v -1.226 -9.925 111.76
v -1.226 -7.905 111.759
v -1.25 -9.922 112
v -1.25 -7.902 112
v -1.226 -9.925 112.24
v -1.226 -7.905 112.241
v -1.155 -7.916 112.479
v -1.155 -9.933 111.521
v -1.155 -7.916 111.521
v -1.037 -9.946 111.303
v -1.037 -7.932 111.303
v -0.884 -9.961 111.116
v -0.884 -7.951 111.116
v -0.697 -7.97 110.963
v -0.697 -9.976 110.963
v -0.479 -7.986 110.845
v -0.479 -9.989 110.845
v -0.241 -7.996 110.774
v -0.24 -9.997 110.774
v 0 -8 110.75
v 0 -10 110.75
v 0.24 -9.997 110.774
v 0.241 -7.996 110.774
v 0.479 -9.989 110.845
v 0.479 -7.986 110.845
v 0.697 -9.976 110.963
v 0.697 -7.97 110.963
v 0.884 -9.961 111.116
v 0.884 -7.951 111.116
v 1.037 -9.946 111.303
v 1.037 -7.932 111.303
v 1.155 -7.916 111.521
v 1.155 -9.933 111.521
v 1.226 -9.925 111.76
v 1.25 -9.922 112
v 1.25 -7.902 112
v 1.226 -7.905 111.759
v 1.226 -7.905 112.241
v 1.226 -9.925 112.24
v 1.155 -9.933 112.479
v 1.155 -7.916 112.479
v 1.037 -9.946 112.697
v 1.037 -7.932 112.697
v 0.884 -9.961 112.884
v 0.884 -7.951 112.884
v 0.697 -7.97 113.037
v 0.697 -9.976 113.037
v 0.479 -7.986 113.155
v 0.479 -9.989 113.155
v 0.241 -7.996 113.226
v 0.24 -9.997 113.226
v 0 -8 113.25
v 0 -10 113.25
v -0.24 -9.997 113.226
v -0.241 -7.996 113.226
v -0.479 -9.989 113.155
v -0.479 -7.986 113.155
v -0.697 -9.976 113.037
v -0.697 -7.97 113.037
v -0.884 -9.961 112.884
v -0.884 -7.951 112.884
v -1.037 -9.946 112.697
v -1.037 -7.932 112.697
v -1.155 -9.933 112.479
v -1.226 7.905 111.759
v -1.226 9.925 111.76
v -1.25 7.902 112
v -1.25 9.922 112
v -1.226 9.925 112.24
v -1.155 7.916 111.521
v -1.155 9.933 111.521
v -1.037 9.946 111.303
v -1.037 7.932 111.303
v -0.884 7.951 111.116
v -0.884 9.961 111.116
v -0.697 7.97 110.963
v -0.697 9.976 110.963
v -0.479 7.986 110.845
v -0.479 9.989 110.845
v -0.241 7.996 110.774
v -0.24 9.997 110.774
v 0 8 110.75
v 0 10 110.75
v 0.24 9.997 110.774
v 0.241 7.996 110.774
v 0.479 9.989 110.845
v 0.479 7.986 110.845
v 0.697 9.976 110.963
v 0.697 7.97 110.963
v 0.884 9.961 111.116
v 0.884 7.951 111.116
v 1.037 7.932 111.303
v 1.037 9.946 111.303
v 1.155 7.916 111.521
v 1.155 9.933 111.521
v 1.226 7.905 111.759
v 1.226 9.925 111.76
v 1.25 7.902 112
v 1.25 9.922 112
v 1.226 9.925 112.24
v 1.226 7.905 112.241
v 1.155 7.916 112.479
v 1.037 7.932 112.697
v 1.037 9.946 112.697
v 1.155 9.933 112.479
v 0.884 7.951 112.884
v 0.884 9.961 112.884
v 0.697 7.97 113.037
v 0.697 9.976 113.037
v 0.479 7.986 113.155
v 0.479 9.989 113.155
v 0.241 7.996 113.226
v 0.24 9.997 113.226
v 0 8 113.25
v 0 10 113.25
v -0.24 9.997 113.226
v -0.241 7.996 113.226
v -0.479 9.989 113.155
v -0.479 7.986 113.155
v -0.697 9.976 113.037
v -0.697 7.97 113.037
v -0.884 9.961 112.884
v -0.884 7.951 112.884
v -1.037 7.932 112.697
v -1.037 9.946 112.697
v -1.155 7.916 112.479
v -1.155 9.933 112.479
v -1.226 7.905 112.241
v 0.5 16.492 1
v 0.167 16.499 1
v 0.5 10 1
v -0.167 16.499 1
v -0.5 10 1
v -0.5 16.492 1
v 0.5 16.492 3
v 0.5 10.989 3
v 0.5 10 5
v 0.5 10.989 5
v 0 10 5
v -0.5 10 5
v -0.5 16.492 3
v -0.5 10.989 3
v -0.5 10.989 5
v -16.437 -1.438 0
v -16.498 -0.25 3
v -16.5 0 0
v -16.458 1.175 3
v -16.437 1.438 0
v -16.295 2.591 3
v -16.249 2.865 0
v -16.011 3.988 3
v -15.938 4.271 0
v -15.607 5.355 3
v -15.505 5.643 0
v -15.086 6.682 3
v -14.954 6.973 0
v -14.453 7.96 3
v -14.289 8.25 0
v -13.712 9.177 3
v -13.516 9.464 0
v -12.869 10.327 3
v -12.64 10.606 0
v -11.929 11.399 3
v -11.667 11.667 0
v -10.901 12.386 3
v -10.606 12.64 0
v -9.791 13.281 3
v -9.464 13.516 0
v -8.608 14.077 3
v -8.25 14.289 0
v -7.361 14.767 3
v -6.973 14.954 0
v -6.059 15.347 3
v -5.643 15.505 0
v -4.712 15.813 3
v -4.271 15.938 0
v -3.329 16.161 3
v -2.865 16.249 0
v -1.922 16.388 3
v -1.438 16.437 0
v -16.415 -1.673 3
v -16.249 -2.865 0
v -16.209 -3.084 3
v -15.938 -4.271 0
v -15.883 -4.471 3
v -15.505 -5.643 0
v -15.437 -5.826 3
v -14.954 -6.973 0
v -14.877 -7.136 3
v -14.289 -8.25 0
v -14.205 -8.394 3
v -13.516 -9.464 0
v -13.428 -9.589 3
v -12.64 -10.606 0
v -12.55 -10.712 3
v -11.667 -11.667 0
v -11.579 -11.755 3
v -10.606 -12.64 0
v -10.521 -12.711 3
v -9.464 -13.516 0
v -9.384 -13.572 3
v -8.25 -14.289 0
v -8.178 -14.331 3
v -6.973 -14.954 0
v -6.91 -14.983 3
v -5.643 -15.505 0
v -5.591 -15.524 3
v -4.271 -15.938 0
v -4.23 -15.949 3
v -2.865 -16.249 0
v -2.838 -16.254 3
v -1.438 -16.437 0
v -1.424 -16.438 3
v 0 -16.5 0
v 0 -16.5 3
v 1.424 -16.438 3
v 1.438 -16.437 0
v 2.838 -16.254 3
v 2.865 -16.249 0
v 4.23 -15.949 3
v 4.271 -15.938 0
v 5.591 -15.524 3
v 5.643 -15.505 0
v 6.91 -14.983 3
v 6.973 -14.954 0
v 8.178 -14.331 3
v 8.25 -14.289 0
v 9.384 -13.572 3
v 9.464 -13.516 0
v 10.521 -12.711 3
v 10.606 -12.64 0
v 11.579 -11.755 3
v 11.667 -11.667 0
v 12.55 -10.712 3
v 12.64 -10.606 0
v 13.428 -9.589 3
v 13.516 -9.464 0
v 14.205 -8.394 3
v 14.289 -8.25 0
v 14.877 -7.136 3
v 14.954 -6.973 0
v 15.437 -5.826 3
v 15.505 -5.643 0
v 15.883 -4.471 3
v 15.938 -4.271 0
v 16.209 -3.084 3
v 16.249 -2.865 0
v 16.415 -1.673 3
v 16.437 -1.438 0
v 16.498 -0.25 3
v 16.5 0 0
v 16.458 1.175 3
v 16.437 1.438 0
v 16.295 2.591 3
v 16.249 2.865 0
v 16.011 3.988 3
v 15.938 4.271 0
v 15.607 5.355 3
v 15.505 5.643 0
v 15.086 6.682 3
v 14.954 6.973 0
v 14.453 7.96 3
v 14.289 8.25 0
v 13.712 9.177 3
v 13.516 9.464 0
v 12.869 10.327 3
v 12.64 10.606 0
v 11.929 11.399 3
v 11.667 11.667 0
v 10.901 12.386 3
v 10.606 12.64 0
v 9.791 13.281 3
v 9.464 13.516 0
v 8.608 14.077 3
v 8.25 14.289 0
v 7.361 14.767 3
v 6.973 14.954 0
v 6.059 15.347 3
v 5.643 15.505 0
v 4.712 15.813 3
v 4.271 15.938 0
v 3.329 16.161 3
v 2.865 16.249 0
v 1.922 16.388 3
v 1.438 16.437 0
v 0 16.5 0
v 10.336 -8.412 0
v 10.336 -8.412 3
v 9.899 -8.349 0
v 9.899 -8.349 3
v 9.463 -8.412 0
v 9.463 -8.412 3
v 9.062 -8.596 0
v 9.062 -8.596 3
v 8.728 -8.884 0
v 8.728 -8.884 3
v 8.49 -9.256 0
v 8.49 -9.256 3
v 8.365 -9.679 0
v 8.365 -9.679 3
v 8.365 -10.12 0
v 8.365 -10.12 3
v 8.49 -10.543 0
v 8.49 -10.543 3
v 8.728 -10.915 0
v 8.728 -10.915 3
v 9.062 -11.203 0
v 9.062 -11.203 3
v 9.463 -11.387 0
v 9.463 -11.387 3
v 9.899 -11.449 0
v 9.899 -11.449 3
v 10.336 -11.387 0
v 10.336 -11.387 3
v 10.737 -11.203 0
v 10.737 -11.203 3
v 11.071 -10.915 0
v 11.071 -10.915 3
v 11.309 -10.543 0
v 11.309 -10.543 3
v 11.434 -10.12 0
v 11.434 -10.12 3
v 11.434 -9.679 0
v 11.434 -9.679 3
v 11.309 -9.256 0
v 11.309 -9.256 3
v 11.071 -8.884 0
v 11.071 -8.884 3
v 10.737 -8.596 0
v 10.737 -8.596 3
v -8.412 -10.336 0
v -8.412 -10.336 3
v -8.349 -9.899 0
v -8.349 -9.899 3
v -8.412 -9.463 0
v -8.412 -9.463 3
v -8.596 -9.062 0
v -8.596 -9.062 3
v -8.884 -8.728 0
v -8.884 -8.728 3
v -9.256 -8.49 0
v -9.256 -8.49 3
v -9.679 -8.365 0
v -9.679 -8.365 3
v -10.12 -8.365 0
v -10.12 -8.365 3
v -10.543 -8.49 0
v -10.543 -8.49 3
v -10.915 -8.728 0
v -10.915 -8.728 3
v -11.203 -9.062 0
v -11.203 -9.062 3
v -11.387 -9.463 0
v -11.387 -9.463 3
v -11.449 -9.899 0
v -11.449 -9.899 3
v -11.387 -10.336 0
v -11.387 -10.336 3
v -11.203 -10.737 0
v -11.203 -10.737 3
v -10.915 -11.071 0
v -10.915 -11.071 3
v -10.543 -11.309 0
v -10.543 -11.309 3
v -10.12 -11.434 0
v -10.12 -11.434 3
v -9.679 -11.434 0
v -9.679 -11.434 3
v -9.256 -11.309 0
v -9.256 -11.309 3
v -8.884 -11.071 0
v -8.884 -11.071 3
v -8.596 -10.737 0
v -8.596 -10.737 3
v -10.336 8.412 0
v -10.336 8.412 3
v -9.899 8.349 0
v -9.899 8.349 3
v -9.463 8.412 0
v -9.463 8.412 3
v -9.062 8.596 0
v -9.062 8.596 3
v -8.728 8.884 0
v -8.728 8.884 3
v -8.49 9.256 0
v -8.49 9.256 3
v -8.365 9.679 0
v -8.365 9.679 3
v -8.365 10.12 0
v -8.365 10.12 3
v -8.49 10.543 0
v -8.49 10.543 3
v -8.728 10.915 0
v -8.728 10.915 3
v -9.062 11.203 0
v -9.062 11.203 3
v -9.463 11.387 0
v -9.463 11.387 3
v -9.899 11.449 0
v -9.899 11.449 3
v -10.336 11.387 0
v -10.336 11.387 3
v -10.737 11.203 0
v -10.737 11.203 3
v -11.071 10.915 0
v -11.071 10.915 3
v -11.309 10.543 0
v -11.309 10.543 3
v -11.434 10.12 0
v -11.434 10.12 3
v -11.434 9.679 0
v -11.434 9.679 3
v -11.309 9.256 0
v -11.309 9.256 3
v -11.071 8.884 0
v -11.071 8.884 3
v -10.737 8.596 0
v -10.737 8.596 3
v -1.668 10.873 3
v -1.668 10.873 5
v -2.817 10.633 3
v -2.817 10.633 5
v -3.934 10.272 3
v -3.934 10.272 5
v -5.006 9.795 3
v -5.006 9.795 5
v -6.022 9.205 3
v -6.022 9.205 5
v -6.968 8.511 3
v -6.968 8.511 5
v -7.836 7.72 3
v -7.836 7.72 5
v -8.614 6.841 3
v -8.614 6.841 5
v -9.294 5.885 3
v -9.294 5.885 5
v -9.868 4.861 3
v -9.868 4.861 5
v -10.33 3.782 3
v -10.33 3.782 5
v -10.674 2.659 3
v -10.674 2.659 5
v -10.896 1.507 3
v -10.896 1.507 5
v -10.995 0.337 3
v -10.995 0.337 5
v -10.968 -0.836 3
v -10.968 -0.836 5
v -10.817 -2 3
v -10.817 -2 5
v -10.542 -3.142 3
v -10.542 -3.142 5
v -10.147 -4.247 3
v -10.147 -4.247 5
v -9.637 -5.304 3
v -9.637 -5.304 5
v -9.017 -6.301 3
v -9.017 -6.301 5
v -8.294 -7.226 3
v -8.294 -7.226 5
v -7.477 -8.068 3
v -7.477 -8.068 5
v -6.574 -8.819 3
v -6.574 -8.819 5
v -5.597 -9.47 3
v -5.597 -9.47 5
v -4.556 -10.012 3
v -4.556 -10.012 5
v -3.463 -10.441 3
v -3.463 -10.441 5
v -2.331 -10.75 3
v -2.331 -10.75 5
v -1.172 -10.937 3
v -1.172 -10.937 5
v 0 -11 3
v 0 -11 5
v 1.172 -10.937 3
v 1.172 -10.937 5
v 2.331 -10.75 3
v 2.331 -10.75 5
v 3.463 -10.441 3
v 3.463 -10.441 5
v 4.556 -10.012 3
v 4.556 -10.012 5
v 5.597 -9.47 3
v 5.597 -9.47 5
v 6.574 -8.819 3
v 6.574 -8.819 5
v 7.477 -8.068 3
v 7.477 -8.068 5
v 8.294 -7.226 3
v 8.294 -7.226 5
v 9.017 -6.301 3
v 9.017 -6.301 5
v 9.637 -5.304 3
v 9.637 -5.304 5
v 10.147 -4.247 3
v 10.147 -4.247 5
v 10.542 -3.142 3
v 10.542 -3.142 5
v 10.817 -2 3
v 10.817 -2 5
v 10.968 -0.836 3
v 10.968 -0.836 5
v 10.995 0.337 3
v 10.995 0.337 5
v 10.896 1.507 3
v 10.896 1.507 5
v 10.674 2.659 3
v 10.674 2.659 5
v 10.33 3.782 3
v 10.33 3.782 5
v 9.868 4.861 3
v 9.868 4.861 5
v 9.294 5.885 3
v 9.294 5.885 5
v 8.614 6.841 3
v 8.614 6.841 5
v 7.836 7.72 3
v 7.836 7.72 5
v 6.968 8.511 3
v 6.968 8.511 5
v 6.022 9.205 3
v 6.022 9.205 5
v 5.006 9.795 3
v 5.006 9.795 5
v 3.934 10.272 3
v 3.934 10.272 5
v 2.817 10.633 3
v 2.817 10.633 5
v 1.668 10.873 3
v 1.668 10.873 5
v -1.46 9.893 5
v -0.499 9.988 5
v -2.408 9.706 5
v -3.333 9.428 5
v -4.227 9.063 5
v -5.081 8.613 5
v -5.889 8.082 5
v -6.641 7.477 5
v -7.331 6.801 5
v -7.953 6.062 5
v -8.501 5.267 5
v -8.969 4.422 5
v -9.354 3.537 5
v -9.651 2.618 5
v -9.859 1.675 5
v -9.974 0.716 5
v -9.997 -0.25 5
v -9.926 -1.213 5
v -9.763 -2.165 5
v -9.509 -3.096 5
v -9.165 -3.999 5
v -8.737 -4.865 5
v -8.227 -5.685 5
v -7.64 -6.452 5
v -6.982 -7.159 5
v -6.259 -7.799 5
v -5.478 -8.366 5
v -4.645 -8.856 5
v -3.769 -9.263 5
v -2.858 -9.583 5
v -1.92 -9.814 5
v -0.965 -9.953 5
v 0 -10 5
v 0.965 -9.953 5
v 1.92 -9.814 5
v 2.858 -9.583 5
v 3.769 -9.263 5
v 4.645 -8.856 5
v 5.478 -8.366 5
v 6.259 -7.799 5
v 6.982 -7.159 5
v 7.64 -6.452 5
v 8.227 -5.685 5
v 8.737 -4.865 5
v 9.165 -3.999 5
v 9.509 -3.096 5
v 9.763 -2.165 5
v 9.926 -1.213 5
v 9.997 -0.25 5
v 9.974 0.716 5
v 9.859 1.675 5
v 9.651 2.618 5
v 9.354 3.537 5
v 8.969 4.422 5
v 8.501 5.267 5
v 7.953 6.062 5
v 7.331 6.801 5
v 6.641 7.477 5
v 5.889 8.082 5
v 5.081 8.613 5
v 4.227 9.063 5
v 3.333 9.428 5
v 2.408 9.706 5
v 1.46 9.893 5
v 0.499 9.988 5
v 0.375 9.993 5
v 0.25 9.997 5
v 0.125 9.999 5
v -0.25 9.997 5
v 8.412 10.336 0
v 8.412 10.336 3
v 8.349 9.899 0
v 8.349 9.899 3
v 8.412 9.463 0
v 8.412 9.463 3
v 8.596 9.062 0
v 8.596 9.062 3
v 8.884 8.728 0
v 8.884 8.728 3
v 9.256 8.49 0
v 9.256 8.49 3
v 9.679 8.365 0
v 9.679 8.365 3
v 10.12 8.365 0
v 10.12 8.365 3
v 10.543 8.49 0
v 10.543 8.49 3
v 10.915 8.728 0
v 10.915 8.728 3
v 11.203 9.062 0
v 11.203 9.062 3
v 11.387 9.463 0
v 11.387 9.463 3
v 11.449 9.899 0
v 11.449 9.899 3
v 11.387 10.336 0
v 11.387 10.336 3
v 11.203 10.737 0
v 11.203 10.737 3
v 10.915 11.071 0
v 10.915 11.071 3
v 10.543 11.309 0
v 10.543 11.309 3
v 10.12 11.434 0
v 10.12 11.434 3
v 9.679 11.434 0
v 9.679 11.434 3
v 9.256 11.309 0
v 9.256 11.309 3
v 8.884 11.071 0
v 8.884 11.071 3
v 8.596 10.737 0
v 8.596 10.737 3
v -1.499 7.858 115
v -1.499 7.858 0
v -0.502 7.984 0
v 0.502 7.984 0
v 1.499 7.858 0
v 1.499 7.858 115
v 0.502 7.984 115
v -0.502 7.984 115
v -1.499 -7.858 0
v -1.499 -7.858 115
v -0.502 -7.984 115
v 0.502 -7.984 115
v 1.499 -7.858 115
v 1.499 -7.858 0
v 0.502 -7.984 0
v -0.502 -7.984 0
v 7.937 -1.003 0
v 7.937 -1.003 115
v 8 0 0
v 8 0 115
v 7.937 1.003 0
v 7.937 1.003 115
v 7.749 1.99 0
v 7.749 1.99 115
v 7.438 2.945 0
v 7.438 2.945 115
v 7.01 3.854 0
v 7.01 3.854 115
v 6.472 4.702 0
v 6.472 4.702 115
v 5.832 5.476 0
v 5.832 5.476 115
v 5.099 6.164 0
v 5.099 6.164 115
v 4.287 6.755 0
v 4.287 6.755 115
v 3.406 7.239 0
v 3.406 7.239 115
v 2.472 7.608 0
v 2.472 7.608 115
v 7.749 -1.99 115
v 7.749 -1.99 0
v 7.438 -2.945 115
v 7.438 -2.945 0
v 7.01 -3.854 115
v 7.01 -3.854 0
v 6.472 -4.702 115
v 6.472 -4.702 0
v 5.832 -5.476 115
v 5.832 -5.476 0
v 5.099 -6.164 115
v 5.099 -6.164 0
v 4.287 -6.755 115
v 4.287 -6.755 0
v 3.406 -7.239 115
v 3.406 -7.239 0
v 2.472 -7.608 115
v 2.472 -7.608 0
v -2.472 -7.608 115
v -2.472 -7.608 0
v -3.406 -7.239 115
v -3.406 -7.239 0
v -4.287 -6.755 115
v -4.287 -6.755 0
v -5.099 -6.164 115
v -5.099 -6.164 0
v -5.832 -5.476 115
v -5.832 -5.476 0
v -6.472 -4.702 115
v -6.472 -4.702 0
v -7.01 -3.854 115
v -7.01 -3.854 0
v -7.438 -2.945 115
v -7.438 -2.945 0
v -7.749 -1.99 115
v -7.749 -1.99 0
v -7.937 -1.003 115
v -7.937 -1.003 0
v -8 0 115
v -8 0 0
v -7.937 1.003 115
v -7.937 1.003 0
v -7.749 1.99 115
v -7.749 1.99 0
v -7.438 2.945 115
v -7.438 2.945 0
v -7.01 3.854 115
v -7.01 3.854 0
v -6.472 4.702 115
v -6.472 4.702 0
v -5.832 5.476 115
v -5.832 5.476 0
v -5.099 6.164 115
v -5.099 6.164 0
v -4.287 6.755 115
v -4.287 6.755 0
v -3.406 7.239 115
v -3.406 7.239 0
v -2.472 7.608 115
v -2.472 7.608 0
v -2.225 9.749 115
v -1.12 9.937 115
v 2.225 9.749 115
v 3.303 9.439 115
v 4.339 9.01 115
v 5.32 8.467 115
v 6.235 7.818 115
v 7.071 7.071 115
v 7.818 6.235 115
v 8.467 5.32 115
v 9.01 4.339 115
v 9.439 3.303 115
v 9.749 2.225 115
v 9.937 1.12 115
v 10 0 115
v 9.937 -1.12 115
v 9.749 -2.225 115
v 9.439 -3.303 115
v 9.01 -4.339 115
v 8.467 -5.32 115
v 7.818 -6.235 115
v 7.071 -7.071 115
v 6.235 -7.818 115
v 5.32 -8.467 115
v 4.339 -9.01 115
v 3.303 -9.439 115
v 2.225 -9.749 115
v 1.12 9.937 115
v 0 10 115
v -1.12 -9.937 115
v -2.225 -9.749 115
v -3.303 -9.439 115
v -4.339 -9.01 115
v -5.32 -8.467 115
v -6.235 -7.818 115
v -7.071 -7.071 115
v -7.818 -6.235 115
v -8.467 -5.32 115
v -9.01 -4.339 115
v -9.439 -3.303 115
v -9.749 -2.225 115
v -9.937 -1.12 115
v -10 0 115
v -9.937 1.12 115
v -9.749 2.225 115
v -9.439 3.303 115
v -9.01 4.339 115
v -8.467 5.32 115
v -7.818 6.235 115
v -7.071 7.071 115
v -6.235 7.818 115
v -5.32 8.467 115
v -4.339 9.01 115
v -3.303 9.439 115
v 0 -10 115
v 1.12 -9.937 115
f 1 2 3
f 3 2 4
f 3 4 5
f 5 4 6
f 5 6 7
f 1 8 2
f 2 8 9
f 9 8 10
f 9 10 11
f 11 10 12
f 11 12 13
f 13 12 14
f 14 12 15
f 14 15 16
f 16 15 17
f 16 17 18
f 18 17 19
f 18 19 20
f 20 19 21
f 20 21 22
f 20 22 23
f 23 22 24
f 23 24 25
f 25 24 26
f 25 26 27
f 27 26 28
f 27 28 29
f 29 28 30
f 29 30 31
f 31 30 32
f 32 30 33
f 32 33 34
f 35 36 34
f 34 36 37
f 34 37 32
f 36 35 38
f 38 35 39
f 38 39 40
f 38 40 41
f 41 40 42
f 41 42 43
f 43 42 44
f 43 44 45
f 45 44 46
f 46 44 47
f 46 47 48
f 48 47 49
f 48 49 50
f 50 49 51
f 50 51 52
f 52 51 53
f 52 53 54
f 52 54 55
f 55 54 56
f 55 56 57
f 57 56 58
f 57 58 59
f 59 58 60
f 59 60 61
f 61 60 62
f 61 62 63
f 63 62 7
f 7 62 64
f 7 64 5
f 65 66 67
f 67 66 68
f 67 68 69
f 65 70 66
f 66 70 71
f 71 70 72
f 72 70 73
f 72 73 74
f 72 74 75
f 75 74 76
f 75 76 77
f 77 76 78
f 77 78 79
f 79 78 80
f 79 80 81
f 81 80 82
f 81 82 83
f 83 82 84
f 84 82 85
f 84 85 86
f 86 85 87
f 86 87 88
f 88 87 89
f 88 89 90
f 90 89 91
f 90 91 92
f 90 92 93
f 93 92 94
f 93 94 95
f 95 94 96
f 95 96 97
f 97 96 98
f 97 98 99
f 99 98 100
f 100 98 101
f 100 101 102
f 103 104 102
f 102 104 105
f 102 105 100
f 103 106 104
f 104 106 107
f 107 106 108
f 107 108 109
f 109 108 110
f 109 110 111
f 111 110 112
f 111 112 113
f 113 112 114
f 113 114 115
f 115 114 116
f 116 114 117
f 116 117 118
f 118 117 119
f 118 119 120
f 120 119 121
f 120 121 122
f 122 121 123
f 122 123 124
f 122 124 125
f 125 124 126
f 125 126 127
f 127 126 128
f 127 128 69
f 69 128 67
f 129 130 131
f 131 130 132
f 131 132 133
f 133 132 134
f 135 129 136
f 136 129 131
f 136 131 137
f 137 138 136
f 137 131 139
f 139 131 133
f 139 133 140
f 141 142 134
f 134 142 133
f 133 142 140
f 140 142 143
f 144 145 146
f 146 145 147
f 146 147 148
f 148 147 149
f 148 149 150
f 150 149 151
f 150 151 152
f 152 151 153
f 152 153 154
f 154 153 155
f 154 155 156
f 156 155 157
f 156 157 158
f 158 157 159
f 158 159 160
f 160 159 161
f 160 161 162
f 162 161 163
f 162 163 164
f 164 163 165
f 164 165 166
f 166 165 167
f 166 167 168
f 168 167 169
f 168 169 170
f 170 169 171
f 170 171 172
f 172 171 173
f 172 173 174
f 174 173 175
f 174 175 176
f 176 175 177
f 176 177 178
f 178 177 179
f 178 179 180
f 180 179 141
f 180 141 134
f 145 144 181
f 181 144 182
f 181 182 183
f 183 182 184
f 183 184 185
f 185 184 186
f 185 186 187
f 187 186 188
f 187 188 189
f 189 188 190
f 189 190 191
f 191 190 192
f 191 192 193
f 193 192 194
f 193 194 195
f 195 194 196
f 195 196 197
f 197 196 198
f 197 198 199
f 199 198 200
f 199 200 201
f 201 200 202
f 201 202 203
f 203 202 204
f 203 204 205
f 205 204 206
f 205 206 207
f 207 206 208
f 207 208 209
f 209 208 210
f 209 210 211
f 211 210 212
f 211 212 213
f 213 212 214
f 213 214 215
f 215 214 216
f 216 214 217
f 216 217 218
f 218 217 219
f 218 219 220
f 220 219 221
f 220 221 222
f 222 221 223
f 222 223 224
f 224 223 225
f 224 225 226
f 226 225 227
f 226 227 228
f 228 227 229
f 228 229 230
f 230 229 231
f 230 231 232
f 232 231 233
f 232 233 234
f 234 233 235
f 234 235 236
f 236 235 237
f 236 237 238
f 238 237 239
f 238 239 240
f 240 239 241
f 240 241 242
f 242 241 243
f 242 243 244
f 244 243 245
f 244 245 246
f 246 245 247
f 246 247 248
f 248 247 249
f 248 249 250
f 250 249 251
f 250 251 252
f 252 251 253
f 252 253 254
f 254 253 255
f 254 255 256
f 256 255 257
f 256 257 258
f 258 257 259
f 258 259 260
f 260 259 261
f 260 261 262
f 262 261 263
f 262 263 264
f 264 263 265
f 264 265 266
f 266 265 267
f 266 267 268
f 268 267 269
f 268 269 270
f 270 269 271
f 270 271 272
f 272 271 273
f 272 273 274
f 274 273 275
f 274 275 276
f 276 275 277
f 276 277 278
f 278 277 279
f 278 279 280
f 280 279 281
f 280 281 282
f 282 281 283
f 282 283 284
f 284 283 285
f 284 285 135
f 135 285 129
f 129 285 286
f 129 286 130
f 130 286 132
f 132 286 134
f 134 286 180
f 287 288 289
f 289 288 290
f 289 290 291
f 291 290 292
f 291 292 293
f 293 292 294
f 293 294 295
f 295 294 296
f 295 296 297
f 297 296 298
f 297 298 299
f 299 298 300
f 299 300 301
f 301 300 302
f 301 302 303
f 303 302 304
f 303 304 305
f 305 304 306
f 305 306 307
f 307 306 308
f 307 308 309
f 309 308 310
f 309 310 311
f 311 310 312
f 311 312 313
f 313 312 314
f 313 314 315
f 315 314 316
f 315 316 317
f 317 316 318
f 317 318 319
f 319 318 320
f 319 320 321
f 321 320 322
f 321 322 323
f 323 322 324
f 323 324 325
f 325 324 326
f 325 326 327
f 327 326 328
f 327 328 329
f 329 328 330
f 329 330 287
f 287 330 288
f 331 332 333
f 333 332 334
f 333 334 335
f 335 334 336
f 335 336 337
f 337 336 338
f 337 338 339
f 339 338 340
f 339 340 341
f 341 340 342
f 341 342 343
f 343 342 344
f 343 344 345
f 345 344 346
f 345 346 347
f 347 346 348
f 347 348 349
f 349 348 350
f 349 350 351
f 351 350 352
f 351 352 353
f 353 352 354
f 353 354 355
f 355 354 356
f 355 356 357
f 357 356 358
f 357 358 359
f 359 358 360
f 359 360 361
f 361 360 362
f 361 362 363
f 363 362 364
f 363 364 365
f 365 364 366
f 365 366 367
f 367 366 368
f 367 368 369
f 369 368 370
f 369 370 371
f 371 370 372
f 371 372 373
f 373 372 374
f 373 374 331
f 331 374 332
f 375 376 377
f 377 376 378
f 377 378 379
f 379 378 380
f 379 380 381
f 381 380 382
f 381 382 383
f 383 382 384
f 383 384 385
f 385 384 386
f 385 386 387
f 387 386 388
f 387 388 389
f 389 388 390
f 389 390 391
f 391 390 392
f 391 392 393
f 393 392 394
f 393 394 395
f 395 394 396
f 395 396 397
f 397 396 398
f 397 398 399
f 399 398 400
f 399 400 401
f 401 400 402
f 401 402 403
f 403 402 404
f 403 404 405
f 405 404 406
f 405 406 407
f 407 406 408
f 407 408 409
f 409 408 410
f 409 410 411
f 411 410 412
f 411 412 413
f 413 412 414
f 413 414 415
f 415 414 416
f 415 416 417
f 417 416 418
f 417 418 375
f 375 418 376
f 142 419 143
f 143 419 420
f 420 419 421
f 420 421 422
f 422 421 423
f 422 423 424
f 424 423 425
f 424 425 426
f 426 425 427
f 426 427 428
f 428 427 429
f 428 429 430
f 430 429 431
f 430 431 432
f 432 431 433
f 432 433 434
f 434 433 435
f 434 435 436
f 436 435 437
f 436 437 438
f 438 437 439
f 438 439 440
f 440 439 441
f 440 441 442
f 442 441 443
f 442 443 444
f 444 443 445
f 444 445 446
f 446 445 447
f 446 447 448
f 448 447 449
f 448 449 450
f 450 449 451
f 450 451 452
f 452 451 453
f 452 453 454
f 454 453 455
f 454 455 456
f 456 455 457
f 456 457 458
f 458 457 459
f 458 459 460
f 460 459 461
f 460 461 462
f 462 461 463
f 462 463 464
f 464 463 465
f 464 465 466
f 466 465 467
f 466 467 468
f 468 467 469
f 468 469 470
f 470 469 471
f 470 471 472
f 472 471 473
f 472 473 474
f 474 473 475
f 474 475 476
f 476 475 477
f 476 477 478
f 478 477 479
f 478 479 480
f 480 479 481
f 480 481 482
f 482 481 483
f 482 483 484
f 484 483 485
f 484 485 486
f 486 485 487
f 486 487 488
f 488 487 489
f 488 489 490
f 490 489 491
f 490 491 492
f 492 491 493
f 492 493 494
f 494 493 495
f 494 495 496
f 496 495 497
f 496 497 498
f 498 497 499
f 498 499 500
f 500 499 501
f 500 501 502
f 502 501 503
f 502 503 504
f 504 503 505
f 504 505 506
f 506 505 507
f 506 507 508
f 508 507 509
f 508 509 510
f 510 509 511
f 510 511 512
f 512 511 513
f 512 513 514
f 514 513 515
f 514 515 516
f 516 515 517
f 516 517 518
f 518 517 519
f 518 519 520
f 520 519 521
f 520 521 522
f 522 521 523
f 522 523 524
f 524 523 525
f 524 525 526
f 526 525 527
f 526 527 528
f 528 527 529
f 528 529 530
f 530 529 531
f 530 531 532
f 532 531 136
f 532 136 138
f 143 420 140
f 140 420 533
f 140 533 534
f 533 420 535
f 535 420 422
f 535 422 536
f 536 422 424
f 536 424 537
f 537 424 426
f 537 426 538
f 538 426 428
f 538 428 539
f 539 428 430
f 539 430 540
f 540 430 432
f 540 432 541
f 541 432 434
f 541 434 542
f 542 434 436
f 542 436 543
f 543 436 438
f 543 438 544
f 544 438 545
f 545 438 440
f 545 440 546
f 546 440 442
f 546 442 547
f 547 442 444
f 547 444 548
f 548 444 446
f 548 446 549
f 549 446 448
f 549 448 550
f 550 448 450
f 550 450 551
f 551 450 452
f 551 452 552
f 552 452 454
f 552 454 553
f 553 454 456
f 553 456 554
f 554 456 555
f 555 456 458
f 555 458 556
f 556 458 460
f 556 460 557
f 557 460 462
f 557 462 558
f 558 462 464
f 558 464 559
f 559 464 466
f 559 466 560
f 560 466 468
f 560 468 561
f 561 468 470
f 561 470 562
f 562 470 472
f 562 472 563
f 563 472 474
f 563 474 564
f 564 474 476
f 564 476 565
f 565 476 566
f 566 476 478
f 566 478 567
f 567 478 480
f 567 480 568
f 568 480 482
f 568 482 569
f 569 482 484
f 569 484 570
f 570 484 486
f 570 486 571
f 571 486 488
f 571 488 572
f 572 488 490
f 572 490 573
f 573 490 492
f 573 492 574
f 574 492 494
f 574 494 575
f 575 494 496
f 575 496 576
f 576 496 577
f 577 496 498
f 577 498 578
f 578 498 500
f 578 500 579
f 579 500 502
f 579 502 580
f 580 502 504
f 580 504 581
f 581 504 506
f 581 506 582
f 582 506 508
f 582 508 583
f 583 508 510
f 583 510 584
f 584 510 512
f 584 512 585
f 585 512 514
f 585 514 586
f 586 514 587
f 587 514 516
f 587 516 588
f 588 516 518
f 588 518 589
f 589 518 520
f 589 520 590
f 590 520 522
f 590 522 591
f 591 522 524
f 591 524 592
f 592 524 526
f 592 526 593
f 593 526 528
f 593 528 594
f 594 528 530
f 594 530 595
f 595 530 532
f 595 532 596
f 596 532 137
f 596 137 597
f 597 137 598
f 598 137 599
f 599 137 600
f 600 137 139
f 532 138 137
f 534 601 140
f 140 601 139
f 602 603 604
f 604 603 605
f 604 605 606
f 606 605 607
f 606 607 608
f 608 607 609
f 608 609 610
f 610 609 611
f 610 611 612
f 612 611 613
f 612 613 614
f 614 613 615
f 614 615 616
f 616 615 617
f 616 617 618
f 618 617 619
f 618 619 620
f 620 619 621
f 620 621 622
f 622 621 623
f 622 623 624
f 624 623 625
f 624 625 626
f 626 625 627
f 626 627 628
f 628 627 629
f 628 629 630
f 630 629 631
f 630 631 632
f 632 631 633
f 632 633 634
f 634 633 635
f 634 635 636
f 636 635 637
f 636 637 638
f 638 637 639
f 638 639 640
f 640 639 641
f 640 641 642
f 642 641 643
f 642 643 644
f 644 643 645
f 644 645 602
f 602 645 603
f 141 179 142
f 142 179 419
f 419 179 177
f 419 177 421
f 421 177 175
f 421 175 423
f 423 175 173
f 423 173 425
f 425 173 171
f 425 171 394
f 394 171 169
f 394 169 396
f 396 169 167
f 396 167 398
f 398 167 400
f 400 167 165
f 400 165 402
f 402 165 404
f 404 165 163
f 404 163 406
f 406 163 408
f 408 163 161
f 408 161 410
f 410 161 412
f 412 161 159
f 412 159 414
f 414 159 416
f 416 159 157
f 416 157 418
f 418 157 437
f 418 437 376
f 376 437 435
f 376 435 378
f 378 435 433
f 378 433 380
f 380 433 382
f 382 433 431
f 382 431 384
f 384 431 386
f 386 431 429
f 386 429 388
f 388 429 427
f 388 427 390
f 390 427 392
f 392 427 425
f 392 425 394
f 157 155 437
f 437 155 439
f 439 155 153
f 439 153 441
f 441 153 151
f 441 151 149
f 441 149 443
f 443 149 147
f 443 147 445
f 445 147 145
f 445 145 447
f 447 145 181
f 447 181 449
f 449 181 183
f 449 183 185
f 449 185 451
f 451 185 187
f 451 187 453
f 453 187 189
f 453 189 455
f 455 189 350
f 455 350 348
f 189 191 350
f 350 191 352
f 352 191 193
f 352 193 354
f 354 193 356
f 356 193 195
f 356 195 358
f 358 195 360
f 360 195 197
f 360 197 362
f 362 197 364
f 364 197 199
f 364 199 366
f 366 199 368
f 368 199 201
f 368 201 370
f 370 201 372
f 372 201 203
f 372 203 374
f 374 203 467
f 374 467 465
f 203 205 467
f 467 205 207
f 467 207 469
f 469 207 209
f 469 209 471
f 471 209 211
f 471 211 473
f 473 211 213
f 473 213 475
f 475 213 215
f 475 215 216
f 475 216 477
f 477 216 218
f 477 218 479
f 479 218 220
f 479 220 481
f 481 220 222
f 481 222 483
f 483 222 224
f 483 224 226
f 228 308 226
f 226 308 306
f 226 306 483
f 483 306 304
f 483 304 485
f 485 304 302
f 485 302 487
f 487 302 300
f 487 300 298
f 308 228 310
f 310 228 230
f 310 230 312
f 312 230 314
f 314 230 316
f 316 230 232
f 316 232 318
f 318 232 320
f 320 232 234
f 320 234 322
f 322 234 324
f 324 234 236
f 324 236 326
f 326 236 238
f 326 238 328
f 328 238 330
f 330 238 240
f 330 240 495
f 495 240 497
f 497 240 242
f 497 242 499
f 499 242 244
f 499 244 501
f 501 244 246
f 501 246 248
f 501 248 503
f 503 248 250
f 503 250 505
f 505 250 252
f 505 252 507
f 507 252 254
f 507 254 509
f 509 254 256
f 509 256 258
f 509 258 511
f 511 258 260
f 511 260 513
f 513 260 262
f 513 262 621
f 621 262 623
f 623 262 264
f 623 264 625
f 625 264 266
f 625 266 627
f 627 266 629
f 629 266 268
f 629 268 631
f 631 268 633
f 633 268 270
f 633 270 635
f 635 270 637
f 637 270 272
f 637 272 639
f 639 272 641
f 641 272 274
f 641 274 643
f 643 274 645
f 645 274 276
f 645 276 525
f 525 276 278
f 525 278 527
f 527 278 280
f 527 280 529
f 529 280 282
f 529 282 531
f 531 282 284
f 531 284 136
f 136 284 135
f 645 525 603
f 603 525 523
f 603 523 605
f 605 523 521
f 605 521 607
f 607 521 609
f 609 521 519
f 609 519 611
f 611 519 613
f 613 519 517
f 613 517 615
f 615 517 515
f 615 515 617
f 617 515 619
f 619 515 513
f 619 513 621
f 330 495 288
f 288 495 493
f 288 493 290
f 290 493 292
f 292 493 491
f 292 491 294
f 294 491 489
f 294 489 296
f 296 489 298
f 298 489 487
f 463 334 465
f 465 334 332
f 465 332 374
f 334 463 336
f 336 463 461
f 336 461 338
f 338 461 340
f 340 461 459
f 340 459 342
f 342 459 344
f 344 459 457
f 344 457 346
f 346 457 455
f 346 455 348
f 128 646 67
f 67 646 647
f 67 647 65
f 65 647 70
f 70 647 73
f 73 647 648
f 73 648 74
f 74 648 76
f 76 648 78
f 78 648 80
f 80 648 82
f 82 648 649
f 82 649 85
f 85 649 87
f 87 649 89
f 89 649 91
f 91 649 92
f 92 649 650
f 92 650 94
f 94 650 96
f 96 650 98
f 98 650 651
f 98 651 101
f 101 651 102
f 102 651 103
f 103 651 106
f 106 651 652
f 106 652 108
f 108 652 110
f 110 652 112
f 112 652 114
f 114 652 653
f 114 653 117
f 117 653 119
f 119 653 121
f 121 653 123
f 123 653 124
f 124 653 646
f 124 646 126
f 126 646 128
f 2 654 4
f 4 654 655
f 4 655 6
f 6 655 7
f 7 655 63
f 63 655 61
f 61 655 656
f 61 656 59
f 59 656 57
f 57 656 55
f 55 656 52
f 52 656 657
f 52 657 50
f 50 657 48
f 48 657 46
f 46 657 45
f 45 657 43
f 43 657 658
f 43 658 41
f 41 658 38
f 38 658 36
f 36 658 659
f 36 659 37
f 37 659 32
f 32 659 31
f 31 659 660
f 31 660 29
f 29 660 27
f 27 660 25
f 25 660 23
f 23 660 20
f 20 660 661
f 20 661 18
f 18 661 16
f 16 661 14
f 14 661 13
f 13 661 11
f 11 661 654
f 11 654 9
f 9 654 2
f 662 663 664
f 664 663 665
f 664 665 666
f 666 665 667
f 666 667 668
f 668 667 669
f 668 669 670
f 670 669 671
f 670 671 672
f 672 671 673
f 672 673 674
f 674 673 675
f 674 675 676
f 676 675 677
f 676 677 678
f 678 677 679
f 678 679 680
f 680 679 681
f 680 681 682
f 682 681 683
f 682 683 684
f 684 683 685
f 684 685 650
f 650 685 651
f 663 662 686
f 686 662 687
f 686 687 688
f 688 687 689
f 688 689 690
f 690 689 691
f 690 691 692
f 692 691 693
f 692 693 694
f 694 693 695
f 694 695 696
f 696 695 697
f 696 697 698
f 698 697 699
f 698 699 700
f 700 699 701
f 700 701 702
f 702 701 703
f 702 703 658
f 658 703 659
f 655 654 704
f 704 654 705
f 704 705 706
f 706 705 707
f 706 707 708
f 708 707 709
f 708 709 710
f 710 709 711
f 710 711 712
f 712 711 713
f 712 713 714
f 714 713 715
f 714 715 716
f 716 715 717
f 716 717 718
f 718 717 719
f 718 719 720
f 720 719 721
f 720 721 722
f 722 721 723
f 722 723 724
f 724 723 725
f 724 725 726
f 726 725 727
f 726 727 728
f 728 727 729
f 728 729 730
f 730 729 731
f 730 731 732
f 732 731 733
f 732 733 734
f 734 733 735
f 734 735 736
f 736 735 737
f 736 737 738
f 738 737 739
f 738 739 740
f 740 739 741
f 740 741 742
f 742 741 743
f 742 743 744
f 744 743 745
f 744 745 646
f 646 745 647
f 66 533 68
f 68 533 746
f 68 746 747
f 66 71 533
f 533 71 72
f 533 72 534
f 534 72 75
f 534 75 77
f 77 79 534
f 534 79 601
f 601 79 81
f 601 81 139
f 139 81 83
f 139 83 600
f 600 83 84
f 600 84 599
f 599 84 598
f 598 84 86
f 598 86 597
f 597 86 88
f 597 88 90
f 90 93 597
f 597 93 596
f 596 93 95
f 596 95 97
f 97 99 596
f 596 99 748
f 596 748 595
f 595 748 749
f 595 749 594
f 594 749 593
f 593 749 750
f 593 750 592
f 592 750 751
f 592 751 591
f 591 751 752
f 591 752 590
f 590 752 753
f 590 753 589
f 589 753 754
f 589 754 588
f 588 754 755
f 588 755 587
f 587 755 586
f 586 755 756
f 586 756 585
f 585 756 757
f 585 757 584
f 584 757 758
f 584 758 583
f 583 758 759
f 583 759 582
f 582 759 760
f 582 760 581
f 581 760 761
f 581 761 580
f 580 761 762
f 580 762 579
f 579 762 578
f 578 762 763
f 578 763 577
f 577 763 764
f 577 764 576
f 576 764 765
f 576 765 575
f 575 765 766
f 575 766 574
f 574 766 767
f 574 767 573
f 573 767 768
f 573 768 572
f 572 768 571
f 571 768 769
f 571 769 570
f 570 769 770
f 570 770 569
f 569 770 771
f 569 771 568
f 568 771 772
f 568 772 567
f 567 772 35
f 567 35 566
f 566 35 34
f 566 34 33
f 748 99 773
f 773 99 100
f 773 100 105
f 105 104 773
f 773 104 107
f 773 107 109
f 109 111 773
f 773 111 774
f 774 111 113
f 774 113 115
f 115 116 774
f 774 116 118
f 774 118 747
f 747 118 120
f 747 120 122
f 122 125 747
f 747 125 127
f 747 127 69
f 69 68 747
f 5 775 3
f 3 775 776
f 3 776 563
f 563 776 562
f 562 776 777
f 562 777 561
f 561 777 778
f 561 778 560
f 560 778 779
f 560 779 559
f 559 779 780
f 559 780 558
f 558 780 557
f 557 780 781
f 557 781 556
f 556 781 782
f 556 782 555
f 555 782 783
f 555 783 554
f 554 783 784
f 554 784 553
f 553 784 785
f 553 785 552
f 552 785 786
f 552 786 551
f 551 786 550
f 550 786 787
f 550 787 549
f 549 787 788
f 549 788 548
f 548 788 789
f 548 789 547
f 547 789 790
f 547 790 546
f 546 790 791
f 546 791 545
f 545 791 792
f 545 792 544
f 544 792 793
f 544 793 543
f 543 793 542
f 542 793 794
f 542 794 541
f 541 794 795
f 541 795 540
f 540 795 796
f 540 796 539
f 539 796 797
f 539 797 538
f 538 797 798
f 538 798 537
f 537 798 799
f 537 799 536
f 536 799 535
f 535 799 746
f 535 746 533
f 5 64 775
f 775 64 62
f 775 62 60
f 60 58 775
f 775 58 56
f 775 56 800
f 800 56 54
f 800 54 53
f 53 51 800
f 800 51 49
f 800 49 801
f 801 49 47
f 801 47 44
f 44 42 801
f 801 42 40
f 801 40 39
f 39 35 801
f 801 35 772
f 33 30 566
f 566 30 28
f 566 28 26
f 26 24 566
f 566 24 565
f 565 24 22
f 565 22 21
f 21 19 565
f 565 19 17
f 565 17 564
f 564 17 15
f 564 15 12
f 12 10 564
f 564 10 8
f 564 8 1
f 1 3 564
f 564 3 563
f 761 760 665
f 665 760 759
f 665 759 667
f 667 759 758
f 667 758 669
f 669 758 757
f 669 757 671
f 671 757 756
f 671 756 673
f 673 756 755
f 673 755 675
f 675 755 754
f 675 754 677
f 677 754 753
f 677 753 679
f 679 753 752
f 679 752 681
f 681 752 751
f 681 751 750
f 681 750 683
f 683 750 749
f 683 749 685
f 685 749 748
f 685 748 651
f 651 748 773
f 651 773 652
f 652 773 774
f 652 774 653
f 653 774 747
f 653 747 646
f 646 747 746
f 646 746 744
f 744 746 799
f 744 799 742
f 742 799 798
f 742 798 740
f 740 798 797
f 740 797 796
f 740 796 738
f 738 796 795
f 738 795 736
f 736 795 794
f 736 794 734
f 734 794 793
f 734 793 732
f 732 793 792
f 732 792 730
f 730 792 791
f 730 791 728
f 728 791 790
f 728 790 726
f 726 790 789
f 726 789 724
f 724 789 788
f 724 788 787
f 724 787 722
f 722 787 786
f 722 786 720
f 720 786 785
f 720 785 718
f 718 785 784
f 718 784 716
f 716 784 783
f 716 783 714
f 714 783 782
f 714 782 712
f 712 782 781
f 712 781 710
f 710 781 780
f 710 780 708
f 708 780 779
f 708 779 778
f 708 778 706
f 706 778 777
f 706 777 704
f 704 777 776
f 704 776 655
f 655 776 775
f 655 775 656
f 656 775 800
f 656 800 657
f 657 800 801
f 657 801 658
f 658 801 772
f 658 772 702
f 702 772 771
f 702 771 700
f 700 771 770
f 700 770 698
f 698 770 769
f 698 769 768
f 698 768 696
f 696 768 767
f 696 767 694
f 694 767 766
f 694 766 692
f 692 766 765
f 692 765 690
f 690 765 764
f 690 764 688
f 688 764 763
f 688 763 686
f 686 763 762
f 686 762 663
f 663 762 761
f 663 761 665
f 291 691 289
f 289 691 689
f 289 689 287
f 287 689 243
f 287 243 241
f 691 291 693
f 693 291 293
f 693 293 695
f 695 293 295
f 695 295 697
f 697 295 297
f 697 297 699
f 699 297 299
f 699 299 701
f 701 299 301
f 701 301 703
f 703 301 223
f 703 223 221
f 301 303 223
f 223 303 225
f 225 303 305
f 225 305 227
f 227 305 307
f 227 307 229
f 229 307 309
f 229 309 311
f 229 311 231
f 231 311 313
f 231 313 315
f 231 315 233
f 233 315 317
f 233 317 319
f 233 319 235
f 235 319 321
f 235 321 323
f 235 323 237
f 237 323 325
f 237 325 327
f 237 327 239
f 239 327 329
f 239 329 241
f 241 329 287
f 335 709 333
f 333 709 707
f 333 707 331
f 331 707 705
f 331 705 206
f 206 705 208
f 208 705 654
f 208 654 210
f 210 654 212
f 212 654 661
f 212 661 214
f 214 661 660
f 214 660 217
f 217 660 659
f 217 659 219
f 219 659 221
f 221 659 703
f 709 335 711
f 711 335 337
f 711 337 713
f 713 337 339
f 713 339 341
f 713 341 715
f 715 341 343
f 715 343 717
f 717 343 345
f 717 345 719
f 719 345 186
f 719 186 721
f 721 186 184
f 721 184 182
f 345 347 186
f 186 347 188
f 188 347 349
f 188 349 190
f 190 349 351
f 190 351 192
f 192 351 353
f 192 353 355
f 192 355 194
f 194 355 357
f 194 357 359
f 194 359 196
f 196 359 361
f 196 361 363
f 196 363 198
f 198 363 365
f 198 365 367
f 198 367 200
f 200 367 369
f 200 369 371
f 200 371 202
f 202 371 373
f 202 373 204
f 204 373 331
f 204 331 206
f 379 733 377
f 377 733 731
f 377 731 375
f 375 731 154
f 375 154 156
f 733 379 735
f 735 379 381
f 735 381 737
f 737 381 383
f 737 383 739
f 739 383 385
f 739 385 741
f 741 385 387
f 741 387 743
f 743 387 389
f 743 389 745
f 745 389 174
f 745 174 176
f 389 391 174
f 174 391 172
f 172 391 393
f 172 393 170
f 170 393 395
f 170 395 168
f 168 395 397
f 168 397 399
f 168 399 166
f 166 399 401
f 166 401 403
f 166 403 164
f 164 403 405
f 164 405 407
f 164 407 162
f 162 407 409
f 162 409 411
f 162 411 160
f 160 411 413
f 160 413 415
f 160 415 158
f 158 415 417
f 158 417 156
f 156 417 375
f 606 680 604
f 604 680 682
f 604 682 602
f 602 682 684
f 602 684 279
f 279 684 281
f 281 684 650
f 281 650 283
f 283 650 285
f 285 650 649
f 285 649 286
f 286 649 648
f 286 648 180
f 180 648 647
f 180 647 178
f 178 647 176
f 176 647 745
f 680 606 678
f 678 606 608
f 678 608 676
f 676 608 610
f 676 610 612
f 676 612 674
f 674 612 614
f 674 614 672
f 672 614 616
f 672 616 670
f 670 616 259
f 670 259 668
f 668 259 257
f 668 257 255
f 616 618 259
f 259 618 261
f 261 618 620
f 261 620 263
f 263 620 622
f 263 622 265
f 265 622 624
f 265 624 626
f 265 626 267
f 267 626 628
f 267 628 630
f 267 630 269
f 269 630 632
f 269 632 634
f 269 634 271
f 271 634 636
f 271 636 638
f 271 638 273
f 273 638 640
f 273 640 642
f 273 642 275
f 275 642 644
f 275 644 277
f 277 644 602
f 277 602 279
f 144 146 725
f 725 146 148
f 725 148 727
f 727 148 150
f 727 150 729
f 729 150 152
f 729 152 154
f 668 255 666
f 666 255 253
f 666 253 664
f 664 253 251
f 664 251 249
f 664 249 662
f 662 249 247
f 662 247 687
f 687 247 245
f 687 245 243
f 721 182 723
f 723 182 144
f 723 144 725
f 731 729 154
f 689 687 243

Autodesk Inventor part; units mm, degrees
ref_plane "YZ Plane" through (0, 0, 0) normal (1, 0, 0) x (0, 1, 0)
ref_plane "XZ Plane" through (0, 0, 0) normal (0, 1, 0) x (-1, 0, 0)
ref_plane "XY Plane" through (0, 0, 0) normal (0, 0, 1) x (1, 0, 0)
sketch "Sketch1" plane through (0, 0, 0) normal (0, 0, 1) x (1, 0, 0)
  circle A0 centre (0, 0) radius 10
  circle A1 centre (0, 0) radius 8
  dimension "d0" = 20
  dimension "d1" = 2
extrude "Extrusion1" add sketch "Sketch1" along normal blind 115
sketch "Sketch2" plane through (0, 0, 0) normal (0, 0, -1) x (-1, 0, 0)
  circle A0 centre (0, 0) radius 16.5
  circle A1 centre (0, 0) radius 8
  circle A2 centre (0, 0) radius 8 construction
  dimension "d4" = 33
extrude "Extrusion2" add sketch "Sketch2" against normal blind 3
sketch "Sketch3" plane through (0, 0, 3) normal (0, 0, 1) x (1, 0, 0)
  circle A0 centre (9.8995, 9.8995) radius 1.55
  line L0 (9.8995, 9.8995) -> (0, 0) construction
  line L1 (0, 0) -> (4.9931, 0) construction
  dimension "d7" = 14
  dimension "d8" = 3.1
  dimension "d14" = 45
extrude "Extrusion3" cut sketch "Sketch3" against normal through all
sketch "Sketch7" plane through (0, 0, 3) normal (0, 0, 1) x (1, 0, 0)
  circle A0 centre (0, 0) radius 11
  circle A1 centre (0, 0) radius 10
  circle A2 centre (0, 0) radius 10 construction
  dimension "d30" = 1
extrude "Extrusion7" add sketch "Sketch7" along normal blind 2
pattern_circular "Circular Pattern1" count 4 over 360 about axis through (0, 0, 0) along (0, 0, 1) of "Extrusion3"
sketch "Sketch5" plane through (0, 0, 3) normal (0, 0, 1) x (1, 0, 0)
  line L0 (-0.5, 10) -> (0.5, 10)
  line L1 (0.5, 10) -> (0.5, 20)
  line L2 (0.5, 20) -> (-0.5, 20)
  line L3 (-0.5, 20) -> (-0.5, 10)
  line L4 (-0.5, 10) -> (0.5, 20) construction
  line L5 (0.5, 10) -> (-0.5, 20) construction
  point P0 (0, 0)
  point P1 (0, 15)
  point P2 (0, 15)
  dimension "d21" = 1
  dimension "d22" = 10
  dimension "d23" = 10
extrude "Extrusion5" cut sketch "Sketch5" along normal blind 2 and the other way blind 2
sketch "Sketch6" plane through (0, 0, 0) normal (0, 1, 0) x (-1, 0, 0)
  circle A0 centre (0, 112) radius 1.25
  line L0 (10, 115) -> (-10, 115) construction
  point P0 (0, 0)
  dimension "d26" = 3
  dimension "d27" = 2.5
extrude "Extrusion6" cut sketch "Sketch6" along normal through all both and the other way through all
properties part number "Coil_Stand"
